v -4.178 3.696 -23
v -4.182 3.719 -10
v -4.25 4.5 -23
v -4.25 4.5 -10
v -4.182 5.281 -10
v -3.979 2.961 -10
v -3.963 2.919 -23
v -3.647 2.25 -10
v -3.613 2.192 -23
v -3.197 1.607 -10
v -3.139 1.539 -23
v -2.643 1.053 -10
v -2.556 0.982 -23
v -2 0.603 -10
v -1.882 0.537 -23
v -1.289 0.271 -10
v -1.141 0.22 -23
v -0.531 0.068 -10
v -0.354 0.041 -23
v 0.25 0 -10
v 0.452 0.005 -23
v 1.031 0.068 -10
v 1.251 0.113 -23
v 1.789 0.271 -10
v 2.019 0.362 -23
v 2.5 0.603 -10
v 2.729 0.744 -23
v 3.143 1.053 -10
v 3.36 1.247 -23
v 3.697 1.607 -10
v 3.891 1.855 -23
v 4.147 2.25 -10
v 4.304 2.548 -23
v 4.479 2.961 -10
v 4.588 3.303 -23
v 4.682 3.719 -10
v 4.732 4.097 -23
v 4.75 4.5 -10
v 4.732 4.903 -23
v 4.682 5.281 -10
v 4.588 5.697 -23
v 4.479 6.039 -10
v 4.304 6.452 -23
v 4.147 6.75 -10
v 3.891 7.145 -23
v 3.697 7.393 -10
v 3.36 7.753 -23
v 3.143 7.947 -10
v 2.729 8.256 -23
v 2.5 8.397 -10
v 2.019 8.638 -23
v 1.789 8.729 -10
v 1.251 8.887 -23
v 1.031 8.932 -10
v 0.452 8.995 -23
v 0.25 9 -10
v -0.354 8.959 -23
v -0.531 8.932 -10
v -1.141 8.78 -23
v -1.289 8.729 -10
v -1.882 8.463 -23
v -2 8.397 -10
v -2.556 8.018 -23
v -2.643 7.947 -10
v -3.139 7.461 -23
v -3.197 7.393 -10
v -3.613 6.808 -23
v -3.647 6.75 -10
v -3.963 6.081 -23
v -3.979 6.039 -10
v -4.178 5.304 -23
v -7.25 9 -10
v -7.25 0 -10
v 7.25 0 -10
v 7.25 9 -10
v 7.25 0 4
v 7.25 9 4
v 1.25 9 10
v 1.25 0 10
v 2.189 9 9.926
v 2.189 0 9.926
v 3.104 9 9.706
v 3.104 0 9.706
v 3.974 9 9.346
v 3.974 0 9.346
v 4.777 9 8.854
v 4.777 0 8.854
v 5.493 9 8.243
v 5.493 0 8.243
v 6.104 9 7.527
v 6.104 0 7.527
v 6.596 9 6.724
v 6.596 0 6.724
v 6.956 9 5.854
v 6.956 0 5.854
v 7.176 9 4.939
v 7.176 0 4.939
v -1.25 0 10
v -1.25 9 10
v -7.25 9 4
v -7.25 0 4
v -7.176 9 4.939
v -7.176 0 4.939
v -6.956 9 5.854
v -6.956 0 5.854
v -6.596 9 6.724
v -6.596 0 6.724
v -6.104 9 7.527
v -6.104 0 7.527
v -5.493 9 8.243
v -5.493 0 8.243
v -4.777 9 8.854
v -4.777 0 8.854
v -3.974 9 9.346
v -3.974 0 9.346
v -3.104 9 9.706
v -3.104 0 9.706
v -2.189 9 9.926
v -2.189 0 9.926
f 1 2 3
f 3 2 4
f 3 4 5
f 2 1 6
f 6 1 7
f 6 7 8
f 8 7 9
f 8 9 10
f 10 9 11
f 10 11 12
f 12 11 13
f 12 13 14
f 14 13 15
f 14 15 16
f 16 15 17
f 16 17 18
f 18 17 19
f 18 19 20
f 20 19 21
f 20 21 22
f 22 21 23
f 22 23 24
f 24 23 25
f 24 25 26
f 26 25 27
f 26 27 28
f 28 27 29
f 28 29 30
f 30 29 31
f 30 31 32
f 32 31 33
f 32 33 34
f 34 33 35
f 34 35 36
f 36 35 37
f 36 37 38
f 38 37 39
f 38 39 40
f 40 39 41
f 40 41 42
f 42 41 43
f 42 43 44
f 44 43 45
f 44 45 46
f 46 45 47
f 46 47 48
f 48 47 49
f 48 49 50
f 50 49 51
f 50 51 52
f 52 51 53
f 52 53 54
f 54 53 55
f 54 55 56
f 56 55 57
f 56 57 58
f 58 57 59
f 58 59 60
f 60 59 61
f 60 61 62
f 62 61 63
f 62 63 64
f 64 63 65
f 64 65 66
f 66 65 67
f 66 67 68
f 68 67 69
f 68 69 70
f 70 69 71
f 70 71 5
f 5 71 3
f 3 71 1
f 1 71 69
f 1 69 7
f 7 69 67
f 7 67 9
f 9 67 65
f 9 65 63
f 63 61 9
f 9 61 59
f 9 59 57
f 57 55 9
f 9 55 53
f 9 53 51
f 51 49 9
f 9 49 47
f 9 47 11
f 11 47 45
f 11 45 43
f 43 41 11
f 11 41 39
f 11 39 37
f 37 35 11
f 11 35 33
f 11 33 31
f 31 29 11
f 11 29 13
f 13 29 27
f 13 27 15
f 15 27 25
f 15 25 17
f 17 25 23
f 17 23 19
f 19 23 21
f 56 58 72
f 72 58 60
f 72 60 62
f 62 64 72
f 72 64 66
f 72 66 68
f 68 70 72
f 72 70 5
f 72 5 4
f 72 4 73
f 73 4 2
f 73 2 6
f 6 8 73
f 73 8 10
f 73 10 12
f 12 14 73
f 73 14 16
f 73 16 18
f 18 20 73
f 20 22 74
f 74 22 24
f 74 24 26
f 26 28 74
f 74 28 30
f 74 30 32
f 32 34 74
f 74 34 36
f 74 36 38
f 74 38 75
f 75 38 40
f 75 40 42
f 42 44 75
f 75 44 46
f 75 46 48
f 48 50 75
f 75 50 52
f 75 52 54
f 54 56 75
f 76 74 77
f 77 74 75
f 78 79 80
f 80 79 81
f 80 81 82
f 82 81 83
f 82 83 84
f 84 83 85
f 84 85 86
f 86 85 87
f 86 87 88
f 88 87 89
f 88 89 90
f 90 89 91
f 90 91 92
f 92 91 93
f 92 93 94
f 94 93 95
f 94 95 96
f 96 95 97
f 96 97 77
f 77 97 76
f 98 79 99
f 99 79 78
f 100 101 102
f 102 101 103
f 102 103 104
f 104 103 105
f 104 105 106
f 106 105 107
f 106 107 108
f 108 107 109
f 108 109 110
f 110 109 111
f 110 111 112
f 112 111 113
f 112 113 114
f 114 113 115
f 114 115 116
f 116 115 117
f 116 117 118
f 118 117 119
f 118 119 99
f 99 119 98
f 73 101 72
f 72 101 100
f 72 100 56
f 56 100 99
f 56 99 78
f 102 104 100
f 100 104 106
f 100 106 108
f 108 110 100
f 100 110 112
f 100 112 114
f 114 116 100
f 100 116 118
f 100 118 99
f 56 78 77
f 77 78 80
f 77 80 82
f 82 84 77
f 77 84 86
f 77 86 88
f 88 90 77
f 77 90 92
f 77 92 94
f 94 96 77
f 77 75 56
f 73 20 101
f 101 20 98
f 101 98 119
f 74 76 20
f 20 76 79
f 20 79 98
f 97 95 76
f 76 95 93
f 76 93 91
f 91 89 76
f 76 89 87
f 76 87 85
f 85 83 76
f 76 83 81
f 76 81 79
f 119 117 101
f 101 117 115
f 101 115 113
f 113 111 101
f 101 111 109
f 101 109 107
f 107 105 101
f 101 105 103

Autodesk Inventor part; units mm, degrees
ref_plane "YZ Plane" through (0, 0, 0) normal (1, 0, 0) x (0, 1, 0)
ref_plane "XZ Plane" through (0, 0, 0) normal (0, 1, 0) x (-1, 0, 0)
ref_plane "XY Plane" through (0, 0, 0) normal (0, 0, 1) x (1, 0, 0)
sketch "Эскиз1" plane through (0, 0, 0) normal (0, 1, 0) x (-1, 0, 0)
  line L0 (-7.25, -10) -> (7.25, -10)
  line L1 (7.25, -10) -> (7.25, 4)
  line L2 (1.25, 10) -> (-1.25, 10)
  line L3 (-7.25, 4) -> (-7.25, -10)
  line L4 (-7.25, -10) -> (7.25, 10) construction
  line L5 (7.25, -10) -> (-7.25, 10) construction
  arc A0 (7.25, 4) -> (1.25, 10) centre (1.25, 4) ccw
  arc A1 (-1.25, 10) -> (-7.25, 4) centre (-1.25, 4) ccw
  line L6 (0, -10) -> (5, -10)
  point P0 (0, 0)
  dimension "d0" = 14.5
  dimension "d1" = 20
  dimension "d2" = 6
  dimension "d3" = 6
extrude "Выдавливание1" add sketch "Эскиз1" along normal blind 9
sketch "Эскиз3" plane through (7.25, 0, -10) normal (0, 0, -1) x (-1, 0, 0)
  line L0 (0, 0) -> (0, 9) projected
  line L1 (14.5, 0) -> (8.5, 0) projected
  line L2 (0, 9) -> (14.5, 9)
  line L3 (14.5, 9) -> (14.5, 0)
  line L4 (14.5, 0) -> (0, 0)
  line L5 (0, 0) -> (0, 9)
  circle A0 centre (7, 4.5) radius 4.5
  point P0 (7.25, 0)
  dimension "d11" = 9
  dimension "d12" = 4.5
extrude "Выдавливание3" add sketch "Эскиз3" along normal blind 13 contours A0
properties part number "moroshenka"
